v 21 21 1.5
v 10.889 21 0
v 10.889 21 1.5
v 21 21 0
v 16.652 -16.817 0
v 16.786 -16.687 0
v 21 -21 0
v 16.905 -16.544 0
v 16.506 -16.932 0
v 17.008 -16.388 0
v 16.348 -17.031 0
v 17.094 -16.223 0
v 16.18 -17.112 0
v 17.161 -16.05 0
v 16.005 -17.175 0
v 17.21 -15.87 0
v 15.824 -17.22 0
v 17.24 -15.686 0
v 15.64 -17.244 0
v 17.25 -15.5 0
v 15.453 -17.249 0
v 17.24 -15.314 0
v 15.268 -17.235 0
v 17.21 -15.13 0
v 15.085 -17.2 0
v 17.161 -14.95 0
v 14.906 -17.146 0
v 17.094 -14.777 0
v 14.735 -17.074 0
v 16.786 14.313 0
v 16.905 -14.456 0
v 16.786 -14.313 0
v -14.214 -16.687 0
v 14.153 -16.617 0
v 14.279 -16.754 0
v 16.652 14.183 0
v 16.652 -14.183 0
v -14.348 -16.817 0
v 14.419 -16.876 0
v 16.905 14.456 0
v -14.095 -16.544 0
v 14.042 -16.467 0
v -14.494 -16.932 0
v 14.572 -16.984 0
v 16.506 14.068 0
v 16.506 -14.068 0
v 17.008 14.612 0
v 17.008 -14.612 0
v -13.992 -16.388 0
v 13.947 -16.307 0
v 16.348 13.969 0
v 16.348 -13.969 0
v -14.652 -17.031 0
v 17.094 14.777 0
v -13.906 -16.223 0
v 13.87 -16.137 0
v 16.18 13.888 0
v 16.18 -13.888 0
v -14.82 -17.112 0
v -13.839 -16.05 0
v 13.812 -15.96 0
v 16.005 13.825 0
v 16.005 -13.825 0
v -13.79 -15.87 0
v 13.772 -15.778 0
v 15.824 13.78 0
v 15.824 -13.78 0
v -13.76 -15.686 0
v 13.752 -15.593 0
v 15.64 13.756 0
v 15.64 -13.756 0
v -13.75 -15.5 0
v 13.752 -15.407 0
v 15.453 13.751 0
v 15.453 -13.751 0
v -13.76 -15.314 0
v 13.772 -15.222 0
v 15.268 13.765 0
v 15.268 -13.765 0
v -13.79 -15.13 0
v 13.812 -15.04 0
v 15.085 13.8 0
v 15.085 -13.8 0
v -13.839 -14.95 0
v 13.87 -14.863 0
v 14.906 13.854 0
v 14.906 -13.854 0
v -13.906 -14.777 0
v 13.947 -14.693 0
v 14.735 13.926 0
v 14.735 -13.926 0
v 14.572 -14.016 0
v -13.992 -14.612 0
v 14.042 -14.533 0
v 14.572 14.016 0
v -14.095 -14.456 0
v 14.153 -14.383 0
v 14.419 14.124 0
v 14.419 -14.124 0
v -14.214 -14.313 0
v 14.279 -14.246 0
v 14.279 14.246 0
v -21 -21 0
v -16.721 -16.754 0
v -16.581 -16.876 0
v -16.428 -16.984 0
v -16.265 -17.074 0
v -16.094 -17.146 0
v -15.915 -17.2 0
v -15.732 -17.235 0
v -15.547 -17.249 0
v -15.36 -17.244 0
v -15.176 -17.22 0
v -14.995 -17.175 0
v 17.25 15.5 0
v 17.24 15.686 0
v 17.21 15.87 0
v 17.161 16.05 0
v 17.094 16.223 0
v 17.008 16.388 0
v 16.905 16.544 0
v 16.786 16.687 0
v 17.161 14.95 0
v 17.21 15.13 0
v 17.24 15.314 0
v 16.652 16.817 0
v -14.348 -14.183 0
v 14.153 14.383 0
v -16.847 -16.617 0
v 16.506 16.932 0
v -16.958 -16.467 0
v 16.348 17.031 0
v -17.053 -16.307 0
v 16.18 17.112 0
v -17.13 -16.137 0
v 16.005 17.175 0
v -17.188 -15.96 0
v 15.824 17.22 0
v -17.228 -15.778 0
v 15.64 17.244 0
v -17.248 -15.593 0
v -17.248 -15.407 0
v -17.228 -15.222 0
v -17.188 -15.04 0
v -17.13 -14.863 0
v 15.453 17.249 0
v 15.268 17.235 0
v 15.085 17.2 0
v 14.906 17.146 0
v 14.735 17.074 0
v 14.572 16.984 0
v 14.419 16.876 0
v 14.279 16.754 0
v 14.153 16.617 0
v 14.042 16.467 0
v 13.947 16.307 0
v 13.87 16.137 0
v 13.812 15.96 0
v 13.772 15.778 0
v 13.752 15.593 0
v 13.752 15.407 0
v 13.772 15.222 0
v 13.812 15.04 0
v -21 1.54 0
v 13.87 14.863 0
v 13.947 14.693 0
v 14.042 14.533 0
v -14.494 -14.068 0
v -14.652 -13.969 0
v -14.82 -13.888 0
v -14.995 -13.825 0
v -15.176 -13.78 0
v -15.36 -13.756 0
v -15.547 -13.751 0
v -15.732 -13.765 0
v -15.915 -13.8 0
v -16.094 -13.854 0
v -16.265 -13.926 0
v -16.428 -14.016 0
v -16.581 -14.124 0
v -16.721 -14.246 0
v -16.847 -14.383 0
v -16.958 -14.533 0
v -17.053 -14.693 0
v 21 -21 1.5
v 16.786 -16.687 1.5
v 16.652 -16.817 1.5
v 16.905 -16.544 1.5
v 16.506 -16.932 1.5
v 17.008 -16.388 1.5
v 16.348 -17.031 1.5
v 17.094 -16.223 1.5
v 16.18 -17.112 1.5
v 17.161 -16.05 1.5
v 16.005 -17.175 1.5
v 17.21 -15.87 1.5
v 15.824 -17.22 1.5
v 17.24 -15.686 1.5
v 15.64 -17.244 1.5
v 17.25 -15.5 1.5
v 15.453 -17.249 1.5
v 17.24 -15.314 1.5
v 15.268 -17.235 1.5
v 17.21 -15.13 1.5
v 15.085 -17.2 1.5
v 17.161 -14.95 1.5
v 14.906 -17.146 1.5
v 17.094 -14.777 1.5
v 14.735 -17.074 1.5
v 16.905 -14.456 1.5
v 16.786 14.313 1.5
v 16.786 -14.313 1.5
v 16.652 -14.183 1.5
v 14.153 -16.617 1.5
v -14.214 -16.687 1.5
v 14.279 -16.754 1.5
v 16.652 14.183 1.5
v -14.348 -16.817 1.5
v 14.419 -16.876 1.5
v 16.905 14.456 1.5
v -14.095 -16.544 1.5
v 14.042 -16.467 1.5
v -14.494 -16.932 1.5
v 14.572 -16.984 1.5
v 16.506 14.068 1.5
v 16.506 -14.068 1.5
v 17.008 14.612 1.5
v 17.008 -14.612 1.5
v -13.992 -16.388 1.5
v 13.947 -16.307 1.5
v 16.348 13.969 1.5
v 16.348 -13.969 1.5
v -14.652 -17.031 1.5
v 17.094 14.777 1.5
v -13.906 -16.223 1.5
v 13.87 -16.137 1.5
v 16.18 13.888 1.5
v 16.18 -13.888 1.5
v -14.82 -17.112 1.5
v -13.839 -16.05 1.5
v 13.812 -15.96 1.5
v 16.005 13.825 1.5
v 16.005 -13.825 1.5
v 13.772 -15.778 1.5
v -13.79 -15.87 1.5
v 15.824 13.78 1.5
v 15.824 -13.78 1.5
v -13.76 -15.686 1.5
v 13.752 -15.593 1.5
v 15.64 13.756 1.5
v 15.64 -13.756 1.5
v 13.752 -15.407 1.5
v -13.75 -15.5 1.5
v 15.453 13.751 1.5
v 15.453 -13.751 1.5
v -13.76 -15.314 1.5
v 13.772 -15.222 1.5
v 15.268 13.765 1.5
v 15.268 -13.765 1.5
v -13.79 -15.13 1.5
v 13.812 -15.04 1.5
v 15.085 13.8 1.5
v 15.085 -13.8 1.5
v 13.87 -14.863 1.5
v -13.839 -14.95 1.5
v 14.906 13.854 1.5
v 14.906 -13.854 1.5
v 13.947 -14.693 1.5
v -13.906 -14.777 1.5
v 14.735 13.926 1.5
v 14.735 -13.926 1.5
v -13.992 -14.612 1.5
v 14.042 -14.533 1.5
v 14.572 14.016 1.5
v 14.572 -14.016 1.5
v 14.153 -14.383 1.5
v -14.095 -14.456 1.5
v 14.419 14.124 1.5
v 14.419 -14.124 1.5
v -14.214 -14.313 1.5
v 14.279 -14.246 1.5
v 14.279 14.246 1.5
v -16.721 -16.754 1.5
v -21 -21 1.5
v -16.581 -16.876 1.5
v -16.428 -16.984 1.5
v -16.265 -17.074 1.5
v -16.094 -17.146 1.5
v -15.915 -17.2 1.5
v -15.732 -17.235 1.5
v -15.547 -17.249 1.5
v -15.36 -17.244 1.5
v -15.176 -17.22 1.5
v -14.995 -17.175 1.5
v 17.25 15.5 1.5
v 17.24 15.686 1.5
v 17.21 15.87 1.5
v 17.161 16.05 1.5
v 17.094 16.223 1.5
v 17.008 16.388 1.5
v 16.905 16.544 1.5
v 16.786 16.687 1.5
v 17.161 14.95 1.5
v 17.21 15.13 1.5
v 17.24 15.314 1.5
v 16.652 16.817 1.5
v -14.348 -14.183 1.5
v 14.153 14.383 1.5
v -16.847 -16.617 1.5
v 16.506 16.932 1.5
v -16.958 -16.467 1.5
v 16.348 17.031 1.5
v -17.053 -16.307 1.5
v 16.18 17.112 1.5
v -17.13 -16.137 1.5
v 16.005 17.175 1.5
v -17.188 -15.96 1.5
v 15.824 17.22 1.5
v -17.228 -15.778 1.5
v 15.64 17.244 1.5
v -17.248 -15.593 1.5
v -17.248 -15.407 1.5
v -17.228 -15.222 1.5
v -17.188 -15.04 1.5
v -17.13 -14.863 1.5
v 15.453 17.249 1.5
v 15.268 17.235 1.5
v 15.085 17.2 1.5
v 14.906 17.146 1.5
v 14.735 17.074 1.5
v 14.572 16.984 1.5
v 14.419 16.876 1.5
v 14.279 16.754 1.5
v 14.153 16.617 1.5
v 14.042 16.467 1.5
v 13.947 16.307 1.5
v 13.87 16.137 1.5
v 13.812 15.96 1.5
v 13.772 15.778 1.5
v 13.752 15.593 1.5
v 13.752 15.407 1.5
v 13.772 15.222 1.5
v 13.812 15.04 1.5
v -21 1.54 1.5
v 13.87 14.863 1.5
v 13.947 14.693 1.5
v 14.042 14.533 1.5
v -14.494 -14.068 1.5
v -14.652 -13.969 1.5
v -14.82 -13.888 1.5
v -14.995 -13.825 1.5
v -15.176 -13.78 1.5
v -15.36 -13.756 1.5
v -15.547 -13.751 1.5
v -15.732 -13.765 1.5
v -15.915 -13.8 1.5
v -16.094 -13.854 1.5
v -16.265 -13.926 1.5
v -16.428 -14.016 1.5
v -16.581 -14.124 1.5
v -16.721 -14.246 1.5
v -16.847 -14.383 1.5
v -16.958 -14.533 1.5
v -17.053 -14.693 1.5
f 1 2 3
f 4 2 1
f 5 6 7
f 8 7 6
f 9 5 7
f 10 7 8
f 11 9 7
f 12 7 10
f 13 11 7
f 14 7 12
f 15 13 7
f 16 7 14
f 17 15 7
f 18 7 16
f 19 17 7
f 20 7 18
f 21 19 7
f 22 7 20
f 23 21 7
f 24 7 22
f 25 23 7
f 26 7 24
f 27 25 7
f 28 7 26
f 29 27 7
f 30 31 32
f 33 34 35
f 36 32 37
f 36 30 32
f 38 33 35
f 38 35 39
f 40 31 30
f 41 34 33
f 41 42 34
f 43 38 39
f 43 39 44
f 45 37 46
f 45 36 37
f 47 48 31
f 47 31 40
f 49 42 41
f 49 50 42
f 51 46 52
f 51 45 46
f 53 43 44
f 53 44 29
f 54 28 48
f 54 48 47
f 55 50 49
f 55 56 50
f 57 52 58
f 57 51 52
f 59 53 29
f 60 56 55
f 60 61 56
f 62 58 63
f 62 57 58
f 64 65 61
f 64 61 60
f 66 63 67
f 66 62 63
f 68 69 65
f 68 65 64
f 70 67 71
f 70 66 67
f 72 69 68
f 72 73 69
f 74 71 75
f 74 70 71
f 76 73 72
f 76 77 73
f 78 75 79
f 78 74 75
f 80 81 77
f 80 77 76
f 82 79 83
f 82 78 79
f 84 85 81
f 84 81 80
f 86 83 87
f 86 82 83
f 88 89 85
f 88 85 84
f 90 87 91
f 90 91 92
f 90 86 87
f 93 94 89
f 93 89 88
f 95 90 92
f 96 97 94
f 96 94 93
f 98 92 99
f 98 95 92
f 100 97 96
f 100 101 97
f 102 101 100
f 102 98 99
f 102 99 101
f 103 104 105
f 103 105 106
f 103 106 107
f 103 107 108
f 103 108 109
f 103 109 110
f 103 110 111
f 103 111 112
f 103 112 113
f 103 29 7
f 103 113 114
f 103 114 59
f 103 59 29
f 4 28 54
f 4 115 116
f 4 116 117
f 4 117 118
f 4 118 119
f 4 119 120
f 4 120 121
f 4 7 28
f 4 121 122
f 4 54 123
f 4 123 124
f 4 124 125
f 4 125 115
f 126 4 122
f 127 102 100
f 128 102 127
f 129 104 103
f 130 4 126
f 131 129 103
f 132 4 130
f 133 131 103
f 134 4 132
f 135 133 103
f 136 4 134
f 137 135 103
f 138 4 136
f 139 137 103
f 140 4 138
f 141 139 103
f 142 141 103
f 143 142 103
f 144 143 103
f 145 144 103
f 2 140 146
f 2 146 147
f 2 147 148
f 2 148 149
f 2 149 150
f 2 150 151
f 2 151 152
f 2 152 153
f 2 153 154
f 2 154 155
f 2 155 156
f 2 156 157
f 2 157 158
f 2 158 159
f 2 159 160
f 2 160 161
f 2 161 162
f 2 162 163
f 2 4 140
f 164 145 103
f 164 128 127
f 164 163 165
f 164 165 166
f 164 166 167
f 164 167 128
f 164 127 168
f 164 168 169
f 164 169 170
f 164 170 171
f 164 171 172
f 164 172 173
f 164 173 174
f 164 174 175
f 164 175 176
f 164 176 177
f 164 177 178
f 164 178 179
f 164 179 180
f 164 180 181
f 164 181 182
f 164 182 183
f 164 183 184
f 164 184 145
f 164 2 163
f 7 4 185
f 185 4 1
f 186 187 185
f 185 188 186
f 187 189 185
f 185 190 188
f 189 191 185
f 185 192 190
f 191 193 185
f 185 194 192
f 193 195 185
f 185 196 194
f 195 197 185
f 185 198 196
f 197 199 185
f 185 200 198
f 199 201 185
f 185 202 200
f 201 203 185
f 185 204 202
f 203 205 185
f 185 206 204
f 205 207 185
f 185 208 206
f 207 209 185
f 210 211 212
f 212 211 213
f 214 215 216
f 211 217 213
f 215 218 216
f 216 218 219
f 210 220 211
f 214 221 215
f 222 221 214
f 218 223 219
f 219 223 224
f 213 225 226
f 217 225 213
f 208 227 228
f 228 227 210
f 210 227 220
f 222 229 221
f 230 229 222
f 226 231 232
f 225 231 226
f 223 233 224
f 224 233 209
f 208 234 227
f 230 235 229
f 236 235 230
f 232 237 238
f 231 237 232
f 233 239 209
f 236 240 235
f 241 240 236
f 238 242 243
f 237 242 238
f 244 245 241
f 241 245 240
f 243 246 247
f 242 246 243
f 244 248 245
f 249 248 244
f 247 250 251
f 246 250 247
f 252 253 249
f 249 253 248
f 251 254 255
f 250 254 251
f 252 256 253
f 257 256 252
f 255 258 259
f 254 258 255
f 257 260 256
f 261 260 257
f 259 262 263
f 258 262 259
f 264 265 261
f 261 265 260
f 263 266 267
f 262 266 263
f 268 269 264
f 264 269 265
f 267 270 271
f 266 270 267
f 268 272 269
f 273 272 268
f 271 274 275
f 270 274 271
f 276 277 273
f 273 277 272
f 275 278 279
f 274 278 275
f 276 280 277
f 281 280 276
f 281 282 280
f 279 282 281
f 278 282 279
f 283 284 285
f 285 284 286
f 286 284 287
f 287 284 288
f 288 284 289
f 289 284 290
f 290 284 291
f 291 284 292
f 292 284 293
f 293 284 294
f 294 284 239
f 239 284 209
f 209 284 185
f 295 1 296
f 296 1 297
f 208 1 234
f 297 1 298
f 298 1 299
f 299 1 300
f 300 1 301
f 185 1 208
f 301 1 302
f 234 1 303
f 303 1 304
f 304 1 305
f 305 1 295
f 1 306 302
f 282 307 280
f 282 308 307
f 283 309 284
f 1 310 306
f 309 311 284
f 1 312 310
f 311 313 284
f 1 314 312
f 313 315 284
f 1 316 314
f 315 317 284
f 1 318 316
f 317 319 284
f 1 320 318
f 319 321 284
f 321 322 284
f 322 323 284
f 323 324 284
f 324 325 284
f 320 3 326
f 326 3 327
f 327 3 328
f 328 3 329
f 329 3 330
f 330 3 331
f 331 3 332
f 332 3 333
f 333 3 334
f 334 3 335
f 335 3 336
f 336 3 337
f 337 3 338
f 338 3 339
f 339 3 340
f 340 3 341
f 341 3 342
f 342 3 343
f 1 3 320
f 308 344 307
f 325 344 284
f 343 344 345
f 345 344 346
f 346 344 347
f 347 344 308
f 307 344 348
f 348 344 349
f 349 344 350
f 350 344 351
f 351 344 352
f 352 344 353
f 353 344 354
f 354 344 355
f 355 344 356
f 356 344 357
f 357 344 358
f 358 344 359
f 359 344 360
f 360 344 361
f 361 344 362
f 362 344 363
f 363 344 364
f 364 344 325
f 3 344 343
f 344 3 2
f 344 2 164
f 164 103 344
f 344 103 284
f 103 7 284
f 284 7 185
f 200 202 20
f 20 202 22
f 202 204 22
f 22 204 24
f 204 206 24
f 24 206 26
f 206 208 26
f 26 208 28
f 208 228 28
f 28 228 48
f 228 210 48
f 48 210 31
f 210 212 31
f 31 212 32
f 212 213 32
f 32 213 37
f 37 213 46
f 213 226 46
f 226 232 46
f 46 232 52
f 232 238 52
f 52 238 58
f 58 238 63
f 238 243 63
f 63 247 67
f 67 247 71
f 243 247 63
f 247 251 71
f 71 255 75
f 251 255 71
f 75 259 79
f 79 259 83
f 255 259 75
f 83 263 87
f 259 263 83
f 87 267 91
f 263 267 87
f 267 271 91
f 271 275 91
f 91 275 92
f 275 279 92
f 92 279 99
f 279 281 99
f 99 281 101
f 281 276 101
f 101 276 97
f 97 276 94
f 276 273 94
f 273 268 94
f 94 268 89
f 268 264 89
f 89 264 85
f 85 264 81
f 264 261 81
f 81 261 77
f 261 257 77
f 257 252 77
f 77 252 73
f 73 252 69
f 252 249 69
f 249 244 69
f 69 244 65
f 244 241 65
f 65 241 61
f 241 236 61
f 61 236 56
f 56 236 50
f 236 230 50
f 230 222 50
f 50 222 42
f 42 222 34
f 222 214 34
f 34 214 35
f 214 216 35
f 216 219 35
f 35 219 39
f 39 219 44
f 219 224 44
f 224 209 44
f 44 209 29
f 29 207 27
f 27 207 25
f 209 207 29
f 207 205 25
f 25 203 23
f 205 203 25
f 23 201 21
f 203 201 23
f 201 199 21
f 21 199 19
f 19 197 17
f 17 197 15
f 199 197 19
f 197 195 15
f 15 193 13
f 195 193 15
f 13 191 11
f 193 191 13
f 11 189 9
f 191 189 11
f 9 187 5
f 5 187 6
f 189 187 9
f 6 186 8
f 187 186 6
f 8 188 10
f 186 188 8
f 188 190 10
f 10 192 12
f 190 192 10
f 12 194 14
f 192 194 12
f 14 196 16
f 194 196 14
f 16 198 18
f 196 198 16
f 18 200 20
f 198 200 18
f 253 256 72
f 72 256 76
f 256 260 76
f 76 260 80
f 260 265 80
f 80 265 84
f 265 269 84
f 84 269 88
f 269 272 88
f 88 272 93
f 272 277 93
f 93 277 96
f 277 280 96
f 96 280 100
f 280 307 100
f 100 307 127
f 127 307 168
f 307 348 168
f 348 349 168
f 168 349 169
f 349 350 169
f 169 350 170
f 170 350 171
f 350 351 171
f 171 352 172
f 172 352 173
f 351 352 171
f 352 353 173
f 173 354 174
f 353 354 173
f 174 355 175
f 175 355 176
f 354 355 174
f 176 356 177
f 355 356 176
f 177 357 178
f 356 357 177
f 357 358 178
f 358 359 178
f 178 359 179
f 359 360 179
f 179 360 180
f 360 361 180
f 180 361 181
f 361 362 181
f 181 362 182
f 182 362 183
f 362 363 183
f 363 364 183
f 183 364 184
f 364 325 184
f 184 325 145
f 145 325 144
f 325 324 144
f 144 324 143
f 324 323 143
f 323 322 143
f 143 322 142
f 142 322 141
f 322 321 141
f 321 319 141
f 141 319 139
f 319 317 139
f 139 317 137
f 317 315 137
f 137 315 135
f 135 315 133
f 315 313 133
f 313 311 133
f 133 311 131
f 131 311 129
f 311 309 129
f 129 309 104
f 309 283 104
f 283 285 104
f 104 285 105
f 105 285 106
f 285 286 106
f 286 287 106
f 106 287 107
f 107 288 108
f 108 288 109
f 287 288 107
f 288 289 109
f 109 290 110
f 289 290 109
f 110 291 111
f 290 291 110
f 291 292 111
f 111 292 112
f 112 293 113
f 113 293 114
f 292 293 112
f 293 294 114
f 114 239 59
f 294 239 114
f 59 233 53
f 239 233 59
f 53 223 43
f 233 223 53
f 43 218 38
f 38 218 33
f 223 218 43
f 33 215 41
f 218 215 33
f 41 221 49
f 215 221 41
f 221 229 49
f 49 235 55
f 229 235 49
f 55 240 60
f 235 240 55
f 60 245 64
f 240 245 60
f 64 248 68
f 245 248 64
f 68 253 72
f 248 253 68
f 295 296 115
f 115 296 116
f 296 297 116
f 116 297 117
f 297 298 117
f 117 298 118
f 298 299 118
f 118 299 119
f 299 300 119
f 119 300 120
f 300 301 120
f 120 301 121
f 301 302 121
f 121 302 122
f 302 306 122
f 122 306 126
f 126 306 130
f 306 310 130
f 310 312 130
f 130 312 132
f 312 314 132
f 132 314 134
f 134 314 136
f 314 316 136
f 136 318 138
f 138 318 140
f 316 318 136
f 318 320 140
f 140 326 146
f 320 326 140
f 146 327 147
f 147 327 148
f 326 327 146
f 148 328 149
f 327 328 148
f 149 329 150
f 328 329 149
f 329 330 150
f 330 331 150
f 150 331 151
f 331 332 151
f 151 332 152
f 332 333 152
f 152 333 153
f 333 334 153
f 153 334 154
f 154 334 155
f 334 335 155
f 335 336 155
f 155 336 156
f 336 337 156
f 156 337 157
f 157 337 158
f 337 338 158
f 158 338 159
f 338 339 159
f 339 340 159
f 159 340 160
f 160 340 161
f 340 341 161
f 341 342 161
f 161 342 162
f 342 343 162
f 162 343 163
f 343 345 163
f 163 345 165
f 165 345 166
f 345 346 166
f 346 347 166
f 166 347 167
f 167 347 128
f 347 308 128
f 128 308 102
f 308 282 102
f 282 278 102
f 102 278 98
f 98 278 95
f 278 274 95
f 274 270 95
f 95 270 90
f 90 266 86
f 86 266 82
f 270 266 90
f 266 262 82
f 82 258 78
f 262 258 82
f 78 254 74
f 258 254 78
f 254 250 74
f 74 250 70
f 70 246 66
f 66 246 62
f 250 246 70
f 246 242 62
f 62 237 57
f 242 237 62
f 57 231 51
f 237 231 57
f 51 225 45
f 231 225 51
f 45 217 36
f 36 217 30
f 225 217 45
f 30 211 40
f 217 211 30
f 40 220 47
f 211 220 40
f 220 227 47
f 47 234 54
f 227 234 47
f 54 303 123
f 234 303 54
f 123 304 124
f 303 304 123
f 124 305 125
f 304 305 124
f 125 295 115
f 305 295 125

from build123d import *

# Parameters (mm, degrees)
SKETCH009_W     = 42
SKETCH009_H     = 42
PAD_DEPTH       = 1.5
POCKET_DEPTH    = 5
SKETCH010_R     = 1.75
POCKET001_DEPTH = 5


with BuildPart() as part:
    # Sketch009 → Pad (new body)
    with BuildSketch(Plane.XY):
        Rectangle(SKETCH009_W, SKETCH009_H)
    extrude(amount=PAD_DEPTH)

    # Sketch (on Face6 of Pad) → Pocket (cut)
    with BuildSketch(Plane.XY.offset(1.5)):
        Polygon((15.08529, 23.560768), (-32.782513, -5.650321), (-32.782513, 34.968018), align=None)
    extrude(amount=-POCKET_DEPTH, mode=Mode.SUBTRACT)

    # Sketch010 (on Face4 of Pocket) → Pocket001 (cut)
    with BuildSketch(Plane.XY.offset(1.5)):
        with Locations((-15.5, 15.5)):
            Circle(SKETCH010_R)
        with Locations((15.5, -15.5)):
            Circle(SKETCH010_R)
        with Locations((15.5, 15.5)):
            Circle(SKETCH010_R)
        with Locations((-15.5, -15.5)):
            Circle(SKETCH010_R)
    extrude(amount=-POCKET001_DEPTH, mode=Mode.SUBTRACT)


solid = part.part
